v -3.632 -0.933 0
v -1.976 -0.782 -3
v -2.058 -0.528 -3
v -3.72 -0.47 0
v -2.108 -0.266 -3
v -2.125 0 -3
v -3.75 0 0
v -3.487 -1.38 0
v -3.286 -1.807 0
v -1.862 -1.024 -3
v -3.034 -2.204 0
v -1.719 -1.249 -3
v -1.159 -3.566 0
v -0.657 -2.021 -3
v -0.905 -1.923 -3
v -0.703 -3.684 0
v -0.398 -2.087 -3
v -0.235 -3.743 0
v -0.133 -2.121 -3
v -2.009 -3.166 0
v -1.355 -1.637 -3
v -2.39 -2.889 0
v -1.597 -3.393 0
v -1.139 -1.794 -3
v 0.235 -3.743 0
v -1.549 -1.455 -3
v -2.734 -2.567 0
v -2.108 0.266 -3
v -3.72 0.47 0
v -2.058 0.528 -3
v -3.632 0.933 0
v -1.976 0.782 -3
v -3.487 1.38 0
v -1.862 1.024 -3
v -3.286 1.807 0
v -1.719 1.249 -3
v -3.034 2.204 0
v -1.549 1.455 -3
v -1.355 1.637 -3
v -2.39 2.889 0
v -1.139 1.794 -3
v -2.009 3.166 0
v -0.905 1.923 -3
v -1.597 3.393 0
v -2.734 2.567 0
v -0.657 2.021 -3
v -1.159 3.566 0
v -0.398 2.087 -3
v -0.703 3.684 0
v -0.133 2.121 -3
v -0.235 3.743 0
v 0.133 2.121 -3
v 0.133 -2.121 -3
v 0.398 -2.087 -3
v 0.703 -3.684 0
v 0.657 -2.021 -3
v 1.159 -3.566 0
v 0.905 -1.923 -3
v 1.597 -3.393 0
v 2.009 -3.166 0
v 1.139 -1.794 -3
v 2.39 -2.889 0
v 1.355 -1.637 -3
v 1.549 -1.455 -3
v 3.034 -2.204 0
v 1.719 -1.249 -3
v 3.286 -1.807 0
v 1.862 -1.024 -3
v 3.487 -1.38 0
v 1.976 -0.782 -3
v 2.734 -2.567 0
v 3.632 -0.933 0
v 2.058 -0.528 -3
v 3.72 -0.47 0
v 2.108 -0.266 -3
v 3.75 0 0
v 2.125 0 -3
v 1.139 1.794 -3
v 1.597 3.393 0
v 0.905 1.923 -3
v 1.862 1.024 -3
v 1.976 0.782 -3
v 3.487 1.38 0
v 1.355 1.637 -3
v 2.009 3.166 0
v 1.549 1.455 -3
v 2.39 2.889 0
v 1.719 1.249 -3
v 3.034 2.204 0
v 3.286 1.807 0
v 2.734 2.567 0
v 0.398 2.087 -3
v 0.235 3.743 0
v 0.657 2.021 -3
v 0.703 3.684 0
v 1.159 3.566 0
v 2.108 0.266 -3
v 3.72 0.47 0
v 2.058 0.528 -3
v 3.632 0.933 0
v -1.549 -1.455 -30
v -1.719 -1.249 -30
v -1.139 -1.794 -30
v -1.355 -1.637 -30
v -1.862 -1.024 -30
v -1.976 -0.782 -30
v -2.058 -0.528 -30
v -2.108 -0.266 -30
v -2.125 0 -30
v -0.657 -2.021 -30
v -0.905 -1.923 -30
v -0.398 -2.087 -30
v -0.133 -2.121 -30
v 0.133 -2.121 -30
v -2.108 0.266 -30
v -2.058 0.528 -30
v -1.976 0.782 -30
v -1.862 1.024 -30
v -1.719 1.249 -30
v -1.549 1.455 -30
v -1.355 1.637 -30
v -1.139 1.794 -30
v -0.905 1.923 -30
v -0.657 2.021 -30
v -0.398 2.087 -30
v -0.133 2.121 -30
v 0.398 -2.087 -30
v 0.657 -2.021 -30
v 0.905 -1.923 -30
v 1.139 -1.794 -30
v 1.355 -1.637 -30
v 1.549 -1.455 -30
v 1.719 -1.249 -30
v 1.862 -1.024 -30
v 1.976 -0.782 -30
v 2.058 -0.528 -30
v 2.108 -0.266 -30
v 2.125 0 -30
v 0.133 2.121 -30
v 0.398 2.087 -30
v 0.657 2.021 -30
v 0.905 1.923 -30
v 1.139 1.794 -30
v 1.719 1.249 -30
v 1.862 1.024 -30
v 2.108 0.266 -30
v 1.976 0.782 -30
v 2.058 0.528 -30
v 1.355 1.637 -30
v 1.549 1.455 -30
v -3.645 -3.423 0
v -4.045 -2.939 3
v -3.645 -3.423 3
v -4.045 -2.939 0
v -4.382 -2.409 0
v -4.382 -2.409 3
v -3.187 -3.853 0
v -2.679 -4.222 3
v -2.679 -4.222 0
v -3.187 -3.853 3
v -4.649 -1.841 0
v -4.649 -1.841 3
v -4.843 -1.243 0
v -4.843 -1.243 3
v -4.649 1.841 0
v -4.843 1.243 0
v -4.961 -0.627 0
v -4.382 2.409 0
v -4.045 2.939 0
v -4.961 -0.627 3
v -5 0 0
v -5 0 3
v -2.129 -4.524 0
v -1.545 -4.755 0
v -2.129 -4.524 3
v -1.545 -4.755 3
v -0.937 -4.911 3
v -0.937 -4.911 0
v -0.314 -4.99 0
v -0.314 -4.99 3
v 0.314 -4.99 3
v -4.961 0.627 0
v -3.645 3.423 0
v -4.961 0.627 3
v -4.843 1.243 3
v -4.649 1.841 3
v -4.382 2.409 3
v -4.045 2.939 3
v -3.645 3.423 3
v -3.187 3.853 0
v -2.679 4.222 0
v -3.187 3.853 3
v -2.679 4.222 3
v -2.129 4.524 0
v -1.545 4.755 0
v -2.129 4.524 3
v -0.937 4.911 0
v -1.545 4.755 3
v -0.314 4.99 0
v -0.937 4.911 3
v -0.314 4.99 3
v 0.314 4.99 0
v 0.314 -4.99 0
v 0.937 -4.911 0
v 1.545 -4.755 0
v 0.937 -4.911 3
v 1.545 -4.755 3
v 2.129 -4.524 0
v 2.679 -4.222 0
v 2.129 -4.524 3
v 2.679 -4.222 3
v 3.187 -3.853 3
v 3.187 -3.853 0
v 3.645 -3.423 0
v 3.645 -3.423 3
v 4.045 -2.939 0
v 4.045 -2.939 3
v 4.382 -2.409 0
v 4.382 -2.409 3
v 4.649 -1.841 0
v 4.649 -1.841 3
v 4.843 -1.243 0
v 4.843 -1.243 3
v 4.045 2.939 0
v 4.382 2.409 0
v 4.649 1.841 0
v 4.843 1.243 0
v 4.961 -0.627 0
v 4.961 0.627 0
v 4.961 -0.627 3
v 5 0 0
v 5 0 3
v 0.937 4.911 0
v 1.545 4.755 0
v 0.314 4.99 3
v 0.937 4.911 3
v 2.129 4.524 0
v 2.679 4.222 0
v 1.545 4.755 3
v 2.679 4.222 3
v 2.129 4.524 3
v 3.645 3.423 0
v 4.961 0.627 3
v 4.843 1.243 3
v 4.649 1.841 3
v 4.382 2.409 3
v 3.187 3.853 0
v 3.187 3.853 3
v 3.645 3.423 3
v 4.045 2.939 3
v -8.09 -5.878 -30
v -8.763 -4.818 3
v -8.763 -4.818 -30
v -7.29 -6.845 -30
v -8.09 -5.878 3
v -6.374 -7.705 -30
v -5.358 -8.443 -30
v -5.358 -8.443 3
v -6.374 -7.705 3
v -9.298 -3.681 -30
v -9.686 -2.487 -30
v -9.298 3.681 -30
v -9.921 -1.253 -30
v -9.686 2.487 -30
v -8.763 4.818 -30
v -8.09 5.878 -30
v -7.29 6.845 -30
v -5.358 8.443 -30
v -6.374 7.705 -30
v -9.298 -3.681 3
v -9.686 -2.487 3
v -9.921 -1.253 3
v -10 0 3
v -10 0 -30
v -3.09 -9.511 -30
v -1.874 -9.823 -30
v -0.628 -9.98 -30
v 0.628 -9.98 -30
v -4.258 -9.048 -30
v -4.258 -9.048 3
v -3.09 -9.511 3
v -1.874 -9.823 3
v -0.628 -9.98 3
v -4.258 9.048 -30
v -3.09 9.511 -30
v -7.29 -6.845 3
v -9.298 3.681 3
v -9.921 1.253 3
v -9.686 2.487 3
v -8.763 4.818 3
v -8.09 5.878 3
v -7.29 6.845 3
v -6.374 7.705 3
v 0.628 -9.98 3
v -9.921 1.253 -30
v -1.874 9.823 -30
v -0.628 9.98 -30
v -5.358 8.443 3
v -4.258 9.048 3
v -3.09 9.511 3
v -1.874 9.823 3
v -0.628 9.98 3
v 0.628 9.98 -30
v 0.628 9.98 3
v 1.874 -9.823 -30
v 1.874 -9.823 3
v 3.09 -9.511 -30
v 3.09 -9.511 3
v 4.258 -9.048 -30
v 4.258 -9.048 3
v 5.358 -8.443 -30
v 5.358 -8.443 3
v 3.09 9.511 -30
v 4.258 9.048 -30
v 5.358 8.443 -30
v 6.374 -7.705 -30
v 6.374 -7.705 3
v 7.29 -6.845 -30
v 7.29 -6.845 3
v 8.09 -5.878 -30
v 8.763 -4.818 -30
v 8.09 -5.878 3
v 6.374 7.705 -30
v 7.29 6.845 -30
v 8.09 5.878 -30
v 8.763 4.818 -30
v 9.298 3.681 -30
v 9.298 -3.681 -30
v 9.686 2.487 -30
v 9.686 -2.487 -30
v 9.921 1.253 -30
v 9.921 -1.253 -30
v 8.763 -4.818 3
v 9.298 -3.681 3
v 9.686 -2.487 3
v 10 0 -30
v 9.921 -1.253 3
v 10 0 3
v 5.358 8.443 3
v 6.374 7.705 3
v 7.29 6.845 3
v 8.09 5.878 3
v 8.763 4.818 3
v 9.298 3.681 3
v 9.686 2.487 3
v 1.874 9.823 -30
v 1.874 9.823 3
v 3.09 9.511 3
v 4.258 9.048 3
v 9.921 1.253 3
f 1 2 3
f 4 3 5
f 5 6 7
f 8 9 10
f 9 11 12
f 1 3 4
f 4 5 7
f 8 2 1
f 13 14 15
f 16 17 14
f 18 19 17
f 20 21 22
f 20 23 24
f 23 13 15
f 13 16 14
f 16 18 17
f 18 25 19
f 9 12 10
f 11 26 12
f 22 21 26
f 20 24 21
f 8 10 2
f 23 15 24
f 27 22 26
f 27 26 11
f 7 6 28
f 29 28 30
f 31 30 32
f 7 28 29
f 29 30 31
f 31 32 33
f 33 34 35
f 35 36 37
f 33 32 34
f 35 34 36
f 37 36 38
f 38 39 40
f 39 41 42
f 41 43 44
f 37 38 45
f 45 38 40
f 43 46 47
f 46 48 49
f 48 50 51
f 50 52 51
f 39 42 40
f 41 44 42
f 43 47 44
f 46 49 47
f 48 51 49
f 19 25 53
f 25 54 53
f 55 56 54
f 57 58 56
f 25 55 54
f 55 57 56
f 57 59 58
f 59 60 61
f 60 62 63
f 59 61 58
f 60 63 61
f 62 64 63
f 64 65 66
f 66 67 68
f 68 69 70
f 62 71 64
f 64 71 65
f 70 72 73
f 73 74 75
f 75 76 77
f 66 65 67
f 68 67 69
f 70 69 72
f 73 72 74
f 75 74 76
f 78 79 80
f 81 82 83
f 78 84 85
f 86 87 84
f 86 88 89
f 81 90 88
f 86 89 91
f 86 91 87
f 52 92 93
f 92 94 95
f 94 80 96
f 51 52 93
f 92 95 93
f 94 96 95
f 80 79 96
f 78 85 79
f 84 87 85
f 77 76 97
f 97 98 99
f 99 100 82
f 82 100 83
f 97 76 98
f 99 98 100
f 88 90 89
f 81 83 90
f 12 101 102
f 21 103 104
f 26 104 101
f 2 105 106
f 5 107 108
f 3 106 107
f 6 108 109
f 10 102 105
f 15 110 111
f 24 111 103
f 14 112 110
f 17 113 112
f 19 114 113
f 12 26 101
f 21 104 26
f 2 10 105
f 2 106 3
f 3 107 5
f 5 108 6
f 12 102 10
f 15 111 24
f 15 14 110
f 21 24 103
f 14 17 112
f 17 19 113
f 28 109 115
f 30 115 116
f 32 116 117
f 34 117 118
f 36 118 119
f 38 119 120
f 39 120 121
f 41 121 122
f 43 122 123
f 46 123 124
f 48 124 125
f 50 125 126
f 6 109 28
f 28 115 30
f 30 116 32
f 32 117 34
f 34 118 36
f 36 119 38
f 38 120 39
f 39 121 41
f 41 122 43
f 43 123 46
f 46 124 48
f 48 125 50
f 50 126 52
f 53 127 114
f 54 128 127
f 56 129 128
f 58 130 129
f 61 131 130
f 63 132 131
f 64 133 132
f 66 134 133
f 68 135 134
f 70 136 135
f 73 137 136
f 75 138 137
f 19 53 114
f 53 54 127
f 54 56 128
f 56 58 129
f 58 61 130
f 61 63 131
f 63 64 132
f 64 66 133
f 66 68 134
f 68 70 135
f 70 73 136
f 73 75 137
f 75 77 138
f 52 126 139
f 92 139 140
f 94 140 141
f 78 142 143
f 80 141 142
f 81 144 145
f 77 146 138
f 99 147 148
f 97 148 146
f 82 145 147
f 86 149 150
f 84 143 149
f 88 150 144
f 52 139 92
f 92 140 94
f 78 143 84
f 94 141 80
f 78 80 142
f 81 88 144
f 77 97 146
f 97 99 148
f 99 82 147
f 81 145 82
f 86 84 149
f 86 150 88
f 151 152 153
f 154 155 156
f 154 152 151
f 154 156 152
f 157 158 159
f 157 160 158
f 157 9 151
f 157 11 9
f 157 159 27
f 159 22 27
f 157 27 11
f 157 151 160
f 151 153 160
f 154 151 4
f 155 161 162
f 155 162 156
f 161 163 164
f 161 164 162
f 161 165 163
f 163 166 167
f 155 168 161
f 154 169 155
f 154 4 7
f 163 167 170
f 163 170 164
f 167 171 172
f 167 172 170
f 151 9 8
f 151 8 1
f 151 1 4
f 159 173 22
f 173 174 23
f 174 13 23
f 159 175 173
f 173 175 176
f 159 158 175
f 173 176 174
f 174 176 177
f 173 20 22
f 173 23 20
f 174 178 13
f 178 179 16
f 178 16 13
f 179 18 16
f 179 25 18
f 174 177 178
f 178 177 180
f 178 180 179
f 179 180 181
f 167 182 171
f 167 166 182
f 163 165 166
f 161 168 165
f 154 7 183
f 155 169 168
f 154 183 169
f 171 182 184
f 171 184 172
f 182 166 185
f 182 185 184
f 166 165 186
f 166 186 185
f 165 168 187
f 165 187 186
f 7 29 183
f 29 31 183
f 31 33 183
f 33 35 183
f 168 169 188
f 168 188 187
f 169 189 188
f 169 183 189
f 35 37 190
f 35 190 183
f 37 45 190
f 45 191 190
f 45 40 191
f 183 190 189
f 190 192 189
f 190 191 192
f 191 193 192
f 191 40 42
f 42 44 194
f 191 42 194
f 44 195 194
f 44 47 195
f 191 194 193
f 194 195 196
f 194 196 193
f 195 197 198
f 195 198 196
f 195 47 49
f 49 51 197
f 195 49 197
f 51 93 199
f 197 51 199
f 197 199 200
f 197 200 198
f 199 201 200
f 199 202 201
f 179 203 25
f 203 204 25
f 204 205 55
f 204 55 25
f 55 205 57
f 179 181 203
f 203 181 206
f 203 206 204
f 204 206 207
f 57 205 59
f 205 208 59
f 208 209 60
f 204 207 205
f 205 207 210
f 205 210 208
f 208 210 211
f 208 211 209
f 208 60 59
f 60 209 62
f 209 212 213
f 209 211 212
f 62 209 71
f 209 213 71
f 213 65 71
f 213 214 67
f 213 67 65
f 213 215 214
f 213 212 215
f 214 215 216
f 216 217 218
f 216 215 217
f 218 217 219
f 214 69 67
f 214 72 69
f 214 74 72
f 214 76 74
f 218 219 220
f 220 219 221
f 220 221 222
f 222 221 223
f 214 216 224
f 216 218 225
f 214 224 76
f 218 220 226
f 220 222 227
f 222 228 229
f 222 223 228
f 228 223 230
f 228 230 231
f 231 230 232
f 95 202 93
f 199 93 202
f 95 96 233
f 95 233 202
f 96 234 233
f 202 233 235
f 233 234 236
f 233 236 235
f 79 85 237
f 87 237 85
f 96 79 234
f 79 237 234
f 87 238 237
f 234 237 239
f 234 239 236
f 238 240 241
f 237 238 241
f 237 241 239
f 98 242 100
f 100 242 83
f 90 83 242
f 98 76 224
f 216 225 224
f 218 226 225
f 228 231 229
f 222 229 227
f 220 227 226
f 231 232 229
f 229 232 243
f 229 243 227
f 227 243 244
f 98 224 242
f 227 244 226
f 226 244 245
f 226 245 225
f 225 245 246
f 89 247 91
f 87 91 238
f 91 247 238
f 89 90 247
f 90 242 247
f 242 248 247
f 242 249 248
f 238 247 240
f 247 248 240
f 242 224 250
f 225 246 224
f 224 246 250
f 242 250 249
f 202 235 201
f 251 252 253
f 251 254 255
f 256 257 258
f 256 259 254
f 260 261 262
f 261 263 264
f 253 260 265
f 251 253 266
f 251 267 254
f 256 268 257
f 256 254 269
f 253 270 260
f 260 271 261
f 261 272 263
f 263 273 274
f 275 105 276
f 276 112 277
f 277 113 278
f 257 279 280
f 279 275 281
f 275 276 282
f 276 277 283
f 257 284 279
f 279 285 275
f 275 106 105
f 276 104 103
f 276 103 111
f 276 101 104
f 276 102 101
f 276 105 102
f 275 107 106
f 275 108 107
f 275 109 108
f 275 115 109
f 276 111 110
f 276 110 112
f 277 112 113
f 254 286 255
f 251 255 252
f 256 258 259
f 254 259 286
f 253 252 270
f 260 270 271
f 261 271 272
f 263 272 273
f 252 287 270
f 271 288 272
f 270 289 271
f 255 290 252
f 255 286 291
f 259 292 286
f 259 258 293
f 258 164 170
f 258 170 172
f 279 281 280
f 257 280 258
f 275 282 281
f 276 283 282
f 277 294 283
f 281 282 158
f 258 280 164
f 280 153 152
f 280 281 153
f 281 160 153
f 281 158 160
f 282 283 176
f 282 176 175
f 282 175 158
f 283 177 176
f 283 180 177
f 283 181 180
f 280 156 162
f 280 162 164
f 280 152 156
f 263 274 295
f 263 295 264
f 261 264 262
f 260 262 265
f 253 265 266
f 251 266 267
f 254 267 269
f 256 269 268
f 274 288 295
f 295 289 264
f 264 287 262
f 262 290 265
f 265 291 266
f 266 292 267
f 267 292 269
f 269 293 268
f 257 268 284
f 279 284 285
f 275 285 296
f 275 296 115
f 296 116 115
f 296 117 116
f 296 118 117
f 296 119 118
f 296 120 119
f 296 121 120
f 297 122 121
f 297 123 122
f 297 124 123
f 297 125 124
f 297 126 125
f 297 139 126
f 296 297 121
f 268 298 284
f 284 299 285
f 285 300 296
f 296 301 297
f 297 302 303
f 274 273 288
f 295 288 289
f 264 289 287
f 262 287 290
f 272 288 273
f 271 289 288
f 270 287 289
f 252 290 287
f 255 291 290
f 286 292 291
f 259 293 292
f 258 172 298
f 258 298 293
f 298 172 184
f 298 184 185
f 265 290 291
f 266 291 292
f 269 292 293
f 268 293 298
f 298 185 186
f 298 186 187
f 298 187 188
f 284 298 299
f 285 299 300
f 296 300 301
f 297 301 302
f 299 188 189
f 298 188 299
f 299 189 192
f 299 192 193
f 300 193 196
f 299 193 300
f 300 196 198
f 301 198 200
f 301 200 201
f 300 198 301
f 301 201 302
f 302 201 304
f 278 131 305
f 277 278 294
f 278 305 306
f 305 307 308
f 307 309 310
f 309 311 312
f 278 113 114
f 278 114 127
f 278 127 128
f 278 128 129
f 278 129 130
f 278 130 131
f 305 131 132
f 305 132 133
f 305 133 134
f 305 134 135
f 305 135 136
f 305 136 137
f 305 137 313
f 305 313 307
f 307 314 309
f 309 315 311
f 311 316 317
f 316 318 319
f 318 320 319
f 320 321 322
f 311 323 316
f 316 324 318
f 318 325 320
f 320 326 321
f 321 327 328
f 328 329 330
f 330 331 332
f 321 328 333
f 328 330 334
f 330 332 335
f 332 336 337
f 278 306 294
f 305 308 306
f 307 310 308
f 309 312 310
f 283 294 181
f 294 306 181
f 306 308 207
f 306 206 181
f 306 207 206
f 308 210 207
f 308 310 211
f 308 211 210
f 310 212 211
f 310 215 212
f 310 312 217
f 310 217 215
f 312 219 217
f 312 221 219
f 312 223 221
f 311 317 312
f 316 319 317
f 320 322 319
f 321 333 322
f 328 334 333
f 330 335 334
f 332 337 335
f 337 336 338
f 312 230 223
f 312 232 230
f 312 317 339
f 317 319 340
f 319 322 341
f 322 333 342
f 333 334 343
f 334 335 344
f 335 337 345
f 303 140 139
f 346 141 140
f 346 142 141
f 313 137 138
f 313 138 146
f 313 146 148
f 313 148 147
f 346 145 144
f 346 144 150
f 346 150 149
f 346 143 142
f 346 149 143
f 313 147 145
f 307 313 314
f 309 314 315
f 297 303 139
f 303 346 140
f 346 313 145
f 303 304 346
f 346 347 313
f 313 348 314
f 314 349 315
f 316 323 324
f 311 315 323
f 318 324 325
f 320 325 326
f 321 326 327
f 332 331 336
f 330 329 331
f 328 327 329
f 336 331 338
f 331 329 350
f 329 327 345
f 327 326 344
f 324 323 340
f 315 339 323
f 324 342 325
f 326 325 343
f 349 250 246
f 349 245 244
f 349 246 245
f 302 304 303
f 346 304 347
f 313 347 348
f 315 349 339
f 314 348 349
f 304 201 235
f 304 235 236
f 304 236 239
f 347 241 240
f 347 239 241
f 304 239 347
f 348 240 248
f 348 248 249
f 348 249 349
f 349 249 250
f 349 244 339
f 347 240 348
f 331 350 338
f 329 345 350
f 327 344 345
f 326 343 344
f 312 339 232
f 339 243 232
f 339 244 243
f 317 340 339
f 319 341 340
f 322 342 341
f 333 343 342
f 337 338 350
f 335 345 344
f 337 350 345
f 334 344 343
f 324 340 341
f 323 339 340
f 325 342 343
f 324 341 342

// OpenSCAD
$fn = 50;


difference() {
	union() {
		translate(v = [0, 0, -30.0000000000]) {
			cylinder(h = 33, r = 10.0000000000);
		}
	}
	union() {
		translate(v = [0, 0, 0]) {
			rotate(a = [0, 0, 0]) {
				difference() {
					union() {
						translate(v = [0, 0, -33.0000000000]) {
							cylinder(h = 33, r = 2.0000000000);
						}
						translate(v = [0, 0, -3]) {
							cylinder(h = 3, r1 = 2.1250000000, r2 = 3.7500000000);
						}
						translate(v = [0, 0, -33.0000000000]) {
							cylinder(h = 33, r = 2.1250000000);
						}
						translate(v = [0, 0, -33.0000000000]) {
							cylinder(h = 33, r = 2.0000000000);
						}
					}
					union();
				}
			}
		}
		#cylinder(h = 3, r = 5.0000000000);
	}
}
